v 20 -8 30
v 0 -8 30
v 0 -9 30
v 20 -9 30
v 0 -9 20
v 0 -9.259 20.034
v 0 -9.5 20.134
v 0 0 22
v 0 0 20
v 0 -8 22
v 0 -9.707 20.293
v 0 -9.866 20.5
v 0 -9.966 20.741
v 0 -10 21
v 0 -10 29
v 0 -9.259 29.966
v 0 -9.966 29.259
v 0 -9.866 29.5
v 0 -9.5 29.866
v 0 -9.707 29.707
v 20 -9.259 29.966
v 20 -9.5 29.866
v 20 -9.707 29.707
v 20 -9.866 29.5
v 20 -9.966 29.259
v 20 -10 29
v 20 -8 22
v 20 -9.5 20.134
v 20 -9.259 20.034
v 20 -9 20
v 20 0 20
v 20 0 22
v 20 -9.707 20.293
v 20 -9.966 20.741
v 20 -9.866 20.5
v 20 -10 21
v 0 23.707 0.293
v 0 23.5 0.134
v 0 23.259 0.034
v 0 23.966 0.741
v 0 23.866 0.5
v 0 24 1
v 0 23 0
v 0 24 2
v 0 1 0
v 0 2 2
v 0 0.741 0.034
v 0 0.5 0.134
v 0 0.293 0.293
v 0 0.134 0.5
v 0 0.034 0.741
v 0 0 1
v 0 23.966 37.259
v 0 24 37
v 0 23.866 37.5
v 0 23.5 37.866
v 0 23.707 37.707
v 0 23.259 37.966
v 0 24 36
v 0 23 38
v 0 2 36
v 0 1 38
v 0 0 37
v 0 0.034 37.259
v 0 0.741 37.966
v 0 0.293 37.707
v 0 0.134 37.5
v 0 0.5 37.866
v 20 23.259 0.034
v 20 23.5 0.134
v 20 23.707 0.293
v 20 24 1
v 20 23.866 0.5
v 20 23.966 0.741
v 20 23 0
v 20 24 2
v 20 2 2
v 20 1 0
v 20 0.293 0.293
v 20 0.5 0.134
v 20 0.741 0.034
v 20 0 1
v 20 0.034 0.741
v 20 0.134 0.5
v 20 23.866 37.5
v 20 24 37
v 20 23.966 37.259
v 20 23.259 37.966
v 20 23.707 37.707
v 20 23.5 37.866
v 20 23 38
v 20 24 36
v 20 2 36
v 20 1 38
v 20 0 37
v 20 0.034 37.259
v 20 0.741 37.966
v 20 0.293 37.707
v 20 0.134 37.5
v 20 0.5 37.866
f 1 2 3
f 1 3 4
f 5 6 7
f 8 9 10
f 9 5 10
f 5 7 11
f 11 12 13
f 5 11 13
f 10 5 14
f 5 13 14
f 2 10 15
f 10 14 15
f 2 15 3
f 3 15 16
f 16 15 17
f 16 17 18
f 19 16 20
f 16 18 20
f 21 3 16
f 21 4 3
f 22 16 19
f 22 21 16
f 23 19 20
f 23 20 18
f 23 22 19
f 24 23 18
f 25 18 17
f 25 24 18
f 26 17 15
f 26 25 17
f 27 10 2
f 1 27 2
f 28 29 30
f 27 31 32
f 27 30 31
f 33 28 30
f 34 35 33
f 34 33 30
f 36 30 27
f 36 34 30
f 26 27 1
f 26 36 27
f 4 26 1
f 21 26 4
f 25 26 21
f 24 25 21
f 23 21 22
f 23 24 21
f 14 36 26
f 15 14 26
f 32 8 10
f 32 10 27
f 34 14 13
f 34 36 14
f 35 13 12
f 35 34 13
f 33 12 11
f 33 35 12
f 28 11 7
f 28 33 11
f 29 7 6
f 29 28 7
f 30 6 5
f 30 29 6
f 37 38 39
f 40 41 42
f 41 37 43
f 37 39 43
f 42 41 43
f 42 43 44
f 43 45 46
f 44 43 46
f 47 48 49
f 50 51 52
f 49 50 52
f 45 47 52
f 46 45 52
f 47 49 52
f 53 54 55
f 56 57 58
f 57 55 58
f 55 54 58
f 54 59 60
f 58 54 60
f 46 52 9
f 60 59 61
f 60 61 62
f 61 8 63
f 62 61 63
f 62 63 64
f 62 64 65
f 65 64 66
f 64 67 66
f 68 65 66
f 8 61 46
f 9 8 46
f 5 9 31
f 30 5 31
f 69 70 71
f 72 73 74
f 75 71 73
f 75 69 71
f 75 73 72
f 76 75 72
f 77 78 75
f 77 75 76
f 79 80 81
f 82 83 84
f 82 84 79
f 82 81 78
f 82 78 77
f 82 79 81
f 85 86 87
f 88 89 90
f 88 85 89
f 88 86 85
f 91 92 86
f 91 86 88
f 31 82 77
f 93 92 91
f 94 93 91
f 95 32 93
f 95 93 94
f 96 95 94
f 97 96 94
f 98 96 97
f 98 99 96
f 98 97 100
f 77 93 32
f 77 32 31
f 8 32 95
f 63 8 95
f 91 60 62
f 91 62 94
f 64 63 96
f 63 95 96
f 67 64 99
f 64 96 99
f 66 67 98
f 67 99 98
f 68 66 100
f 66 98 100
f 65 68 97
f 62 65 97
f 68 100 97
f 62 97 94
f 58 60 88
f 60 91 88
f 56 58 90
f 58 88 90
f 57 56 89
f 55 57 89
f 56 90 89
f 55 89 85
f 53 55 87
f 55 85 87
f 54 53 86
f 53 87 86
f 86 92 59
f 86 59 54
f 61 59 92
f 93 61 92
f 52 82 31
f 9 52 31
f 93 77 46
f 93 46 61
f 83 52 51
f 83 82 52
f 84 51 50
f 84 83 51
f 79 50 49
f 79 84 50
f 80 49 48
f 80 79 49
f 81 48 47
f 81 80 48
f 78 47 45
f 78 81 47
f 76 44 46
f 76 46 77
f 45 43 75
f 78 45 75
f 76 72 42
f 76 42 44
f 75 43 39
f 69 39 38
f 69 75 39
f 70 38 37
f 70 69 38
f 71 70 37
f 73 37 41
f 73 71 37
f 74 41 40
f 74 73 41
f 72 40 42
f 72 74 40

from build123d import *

# Parameters (mm, degrees)
BOX001_W     = 20
BOX001_H     = 30
BOX001_DEPTH = 34
BOX_W        = 20
BOX_H        = 24
BOX_DEPTH    = 38
BOX002_W     = 20
BOX002_H     = 8
BOX002_DEPTH = 8
BOX003_W     = 20
BOX003_H     = 10
BOX003_DEPTH = 10
FILLET_R     = 1


with BuildPart() as cube001:
    # Box001 → Box001 (new body)
    with BuildSketch(Plane(origin=(0, 2, 2), x_dir=(1, 0, 0), z_dir=(0, 0, 1))):
        with Locations((10, 15)):
            Rectangle(BOX001_W, BOX001_H)
    extrude(amount=BOX001_DEPTH)


with BuildPart() as cut:
    # Box → Box (new body)
    with BuildSketch(Plane.XY):
        with Locations((10, 12)):
            Rectangle(BOX_W, BOX_H)
    extrude(amount=BOX_DEPTH)

    # Cut: cut Cube001
    add(cube001.part, mode=Mode.SUBTRACT)


with BuildPart() as cube002:
    # Box002 → Box002 (new body)
    with BuildSketch(Plane(origin=(0, -8, 22), x_dir=(1, 0, 0), z_dir=(0, 0, 1))):
        with Locations((10, 4)):
            Rectangle(BOX002_W, BOX002_H)
    extrude(amount=BOX002_DEPTH)


with BuildPart() as fillet_body:
    # Box003 → Box003 (new body)
    with BuildSketch(Plane(origin=(0, -10, 20), x_dir=(1, 0, 0), z_dir=(0, 0, 1))):
        with Locations((10, 5)):
            Rectangle(BOX003_W, BOX003_H)
    extrude(amount=BOX003_DEPTH)

    # Cut001: cut Cube002
    add(cube002.part, mode=Mode.SUBTRACT)

    # Fusion: union Cut
    add(cut.part)

    # Fillet
    fillet_edges = [fillet_body.edges().sort_by_distance(p)[0] for p in [
        (10, -10, 30),
        (10, -10, 20),
        (10, 0, 0),
        (10, 0, 38),
        (10, 24, 38),
        (10, 24, 0),
    ]]
    fillet(fillet_edges, radius=FILLET_R)


solid = fillet_body.part
